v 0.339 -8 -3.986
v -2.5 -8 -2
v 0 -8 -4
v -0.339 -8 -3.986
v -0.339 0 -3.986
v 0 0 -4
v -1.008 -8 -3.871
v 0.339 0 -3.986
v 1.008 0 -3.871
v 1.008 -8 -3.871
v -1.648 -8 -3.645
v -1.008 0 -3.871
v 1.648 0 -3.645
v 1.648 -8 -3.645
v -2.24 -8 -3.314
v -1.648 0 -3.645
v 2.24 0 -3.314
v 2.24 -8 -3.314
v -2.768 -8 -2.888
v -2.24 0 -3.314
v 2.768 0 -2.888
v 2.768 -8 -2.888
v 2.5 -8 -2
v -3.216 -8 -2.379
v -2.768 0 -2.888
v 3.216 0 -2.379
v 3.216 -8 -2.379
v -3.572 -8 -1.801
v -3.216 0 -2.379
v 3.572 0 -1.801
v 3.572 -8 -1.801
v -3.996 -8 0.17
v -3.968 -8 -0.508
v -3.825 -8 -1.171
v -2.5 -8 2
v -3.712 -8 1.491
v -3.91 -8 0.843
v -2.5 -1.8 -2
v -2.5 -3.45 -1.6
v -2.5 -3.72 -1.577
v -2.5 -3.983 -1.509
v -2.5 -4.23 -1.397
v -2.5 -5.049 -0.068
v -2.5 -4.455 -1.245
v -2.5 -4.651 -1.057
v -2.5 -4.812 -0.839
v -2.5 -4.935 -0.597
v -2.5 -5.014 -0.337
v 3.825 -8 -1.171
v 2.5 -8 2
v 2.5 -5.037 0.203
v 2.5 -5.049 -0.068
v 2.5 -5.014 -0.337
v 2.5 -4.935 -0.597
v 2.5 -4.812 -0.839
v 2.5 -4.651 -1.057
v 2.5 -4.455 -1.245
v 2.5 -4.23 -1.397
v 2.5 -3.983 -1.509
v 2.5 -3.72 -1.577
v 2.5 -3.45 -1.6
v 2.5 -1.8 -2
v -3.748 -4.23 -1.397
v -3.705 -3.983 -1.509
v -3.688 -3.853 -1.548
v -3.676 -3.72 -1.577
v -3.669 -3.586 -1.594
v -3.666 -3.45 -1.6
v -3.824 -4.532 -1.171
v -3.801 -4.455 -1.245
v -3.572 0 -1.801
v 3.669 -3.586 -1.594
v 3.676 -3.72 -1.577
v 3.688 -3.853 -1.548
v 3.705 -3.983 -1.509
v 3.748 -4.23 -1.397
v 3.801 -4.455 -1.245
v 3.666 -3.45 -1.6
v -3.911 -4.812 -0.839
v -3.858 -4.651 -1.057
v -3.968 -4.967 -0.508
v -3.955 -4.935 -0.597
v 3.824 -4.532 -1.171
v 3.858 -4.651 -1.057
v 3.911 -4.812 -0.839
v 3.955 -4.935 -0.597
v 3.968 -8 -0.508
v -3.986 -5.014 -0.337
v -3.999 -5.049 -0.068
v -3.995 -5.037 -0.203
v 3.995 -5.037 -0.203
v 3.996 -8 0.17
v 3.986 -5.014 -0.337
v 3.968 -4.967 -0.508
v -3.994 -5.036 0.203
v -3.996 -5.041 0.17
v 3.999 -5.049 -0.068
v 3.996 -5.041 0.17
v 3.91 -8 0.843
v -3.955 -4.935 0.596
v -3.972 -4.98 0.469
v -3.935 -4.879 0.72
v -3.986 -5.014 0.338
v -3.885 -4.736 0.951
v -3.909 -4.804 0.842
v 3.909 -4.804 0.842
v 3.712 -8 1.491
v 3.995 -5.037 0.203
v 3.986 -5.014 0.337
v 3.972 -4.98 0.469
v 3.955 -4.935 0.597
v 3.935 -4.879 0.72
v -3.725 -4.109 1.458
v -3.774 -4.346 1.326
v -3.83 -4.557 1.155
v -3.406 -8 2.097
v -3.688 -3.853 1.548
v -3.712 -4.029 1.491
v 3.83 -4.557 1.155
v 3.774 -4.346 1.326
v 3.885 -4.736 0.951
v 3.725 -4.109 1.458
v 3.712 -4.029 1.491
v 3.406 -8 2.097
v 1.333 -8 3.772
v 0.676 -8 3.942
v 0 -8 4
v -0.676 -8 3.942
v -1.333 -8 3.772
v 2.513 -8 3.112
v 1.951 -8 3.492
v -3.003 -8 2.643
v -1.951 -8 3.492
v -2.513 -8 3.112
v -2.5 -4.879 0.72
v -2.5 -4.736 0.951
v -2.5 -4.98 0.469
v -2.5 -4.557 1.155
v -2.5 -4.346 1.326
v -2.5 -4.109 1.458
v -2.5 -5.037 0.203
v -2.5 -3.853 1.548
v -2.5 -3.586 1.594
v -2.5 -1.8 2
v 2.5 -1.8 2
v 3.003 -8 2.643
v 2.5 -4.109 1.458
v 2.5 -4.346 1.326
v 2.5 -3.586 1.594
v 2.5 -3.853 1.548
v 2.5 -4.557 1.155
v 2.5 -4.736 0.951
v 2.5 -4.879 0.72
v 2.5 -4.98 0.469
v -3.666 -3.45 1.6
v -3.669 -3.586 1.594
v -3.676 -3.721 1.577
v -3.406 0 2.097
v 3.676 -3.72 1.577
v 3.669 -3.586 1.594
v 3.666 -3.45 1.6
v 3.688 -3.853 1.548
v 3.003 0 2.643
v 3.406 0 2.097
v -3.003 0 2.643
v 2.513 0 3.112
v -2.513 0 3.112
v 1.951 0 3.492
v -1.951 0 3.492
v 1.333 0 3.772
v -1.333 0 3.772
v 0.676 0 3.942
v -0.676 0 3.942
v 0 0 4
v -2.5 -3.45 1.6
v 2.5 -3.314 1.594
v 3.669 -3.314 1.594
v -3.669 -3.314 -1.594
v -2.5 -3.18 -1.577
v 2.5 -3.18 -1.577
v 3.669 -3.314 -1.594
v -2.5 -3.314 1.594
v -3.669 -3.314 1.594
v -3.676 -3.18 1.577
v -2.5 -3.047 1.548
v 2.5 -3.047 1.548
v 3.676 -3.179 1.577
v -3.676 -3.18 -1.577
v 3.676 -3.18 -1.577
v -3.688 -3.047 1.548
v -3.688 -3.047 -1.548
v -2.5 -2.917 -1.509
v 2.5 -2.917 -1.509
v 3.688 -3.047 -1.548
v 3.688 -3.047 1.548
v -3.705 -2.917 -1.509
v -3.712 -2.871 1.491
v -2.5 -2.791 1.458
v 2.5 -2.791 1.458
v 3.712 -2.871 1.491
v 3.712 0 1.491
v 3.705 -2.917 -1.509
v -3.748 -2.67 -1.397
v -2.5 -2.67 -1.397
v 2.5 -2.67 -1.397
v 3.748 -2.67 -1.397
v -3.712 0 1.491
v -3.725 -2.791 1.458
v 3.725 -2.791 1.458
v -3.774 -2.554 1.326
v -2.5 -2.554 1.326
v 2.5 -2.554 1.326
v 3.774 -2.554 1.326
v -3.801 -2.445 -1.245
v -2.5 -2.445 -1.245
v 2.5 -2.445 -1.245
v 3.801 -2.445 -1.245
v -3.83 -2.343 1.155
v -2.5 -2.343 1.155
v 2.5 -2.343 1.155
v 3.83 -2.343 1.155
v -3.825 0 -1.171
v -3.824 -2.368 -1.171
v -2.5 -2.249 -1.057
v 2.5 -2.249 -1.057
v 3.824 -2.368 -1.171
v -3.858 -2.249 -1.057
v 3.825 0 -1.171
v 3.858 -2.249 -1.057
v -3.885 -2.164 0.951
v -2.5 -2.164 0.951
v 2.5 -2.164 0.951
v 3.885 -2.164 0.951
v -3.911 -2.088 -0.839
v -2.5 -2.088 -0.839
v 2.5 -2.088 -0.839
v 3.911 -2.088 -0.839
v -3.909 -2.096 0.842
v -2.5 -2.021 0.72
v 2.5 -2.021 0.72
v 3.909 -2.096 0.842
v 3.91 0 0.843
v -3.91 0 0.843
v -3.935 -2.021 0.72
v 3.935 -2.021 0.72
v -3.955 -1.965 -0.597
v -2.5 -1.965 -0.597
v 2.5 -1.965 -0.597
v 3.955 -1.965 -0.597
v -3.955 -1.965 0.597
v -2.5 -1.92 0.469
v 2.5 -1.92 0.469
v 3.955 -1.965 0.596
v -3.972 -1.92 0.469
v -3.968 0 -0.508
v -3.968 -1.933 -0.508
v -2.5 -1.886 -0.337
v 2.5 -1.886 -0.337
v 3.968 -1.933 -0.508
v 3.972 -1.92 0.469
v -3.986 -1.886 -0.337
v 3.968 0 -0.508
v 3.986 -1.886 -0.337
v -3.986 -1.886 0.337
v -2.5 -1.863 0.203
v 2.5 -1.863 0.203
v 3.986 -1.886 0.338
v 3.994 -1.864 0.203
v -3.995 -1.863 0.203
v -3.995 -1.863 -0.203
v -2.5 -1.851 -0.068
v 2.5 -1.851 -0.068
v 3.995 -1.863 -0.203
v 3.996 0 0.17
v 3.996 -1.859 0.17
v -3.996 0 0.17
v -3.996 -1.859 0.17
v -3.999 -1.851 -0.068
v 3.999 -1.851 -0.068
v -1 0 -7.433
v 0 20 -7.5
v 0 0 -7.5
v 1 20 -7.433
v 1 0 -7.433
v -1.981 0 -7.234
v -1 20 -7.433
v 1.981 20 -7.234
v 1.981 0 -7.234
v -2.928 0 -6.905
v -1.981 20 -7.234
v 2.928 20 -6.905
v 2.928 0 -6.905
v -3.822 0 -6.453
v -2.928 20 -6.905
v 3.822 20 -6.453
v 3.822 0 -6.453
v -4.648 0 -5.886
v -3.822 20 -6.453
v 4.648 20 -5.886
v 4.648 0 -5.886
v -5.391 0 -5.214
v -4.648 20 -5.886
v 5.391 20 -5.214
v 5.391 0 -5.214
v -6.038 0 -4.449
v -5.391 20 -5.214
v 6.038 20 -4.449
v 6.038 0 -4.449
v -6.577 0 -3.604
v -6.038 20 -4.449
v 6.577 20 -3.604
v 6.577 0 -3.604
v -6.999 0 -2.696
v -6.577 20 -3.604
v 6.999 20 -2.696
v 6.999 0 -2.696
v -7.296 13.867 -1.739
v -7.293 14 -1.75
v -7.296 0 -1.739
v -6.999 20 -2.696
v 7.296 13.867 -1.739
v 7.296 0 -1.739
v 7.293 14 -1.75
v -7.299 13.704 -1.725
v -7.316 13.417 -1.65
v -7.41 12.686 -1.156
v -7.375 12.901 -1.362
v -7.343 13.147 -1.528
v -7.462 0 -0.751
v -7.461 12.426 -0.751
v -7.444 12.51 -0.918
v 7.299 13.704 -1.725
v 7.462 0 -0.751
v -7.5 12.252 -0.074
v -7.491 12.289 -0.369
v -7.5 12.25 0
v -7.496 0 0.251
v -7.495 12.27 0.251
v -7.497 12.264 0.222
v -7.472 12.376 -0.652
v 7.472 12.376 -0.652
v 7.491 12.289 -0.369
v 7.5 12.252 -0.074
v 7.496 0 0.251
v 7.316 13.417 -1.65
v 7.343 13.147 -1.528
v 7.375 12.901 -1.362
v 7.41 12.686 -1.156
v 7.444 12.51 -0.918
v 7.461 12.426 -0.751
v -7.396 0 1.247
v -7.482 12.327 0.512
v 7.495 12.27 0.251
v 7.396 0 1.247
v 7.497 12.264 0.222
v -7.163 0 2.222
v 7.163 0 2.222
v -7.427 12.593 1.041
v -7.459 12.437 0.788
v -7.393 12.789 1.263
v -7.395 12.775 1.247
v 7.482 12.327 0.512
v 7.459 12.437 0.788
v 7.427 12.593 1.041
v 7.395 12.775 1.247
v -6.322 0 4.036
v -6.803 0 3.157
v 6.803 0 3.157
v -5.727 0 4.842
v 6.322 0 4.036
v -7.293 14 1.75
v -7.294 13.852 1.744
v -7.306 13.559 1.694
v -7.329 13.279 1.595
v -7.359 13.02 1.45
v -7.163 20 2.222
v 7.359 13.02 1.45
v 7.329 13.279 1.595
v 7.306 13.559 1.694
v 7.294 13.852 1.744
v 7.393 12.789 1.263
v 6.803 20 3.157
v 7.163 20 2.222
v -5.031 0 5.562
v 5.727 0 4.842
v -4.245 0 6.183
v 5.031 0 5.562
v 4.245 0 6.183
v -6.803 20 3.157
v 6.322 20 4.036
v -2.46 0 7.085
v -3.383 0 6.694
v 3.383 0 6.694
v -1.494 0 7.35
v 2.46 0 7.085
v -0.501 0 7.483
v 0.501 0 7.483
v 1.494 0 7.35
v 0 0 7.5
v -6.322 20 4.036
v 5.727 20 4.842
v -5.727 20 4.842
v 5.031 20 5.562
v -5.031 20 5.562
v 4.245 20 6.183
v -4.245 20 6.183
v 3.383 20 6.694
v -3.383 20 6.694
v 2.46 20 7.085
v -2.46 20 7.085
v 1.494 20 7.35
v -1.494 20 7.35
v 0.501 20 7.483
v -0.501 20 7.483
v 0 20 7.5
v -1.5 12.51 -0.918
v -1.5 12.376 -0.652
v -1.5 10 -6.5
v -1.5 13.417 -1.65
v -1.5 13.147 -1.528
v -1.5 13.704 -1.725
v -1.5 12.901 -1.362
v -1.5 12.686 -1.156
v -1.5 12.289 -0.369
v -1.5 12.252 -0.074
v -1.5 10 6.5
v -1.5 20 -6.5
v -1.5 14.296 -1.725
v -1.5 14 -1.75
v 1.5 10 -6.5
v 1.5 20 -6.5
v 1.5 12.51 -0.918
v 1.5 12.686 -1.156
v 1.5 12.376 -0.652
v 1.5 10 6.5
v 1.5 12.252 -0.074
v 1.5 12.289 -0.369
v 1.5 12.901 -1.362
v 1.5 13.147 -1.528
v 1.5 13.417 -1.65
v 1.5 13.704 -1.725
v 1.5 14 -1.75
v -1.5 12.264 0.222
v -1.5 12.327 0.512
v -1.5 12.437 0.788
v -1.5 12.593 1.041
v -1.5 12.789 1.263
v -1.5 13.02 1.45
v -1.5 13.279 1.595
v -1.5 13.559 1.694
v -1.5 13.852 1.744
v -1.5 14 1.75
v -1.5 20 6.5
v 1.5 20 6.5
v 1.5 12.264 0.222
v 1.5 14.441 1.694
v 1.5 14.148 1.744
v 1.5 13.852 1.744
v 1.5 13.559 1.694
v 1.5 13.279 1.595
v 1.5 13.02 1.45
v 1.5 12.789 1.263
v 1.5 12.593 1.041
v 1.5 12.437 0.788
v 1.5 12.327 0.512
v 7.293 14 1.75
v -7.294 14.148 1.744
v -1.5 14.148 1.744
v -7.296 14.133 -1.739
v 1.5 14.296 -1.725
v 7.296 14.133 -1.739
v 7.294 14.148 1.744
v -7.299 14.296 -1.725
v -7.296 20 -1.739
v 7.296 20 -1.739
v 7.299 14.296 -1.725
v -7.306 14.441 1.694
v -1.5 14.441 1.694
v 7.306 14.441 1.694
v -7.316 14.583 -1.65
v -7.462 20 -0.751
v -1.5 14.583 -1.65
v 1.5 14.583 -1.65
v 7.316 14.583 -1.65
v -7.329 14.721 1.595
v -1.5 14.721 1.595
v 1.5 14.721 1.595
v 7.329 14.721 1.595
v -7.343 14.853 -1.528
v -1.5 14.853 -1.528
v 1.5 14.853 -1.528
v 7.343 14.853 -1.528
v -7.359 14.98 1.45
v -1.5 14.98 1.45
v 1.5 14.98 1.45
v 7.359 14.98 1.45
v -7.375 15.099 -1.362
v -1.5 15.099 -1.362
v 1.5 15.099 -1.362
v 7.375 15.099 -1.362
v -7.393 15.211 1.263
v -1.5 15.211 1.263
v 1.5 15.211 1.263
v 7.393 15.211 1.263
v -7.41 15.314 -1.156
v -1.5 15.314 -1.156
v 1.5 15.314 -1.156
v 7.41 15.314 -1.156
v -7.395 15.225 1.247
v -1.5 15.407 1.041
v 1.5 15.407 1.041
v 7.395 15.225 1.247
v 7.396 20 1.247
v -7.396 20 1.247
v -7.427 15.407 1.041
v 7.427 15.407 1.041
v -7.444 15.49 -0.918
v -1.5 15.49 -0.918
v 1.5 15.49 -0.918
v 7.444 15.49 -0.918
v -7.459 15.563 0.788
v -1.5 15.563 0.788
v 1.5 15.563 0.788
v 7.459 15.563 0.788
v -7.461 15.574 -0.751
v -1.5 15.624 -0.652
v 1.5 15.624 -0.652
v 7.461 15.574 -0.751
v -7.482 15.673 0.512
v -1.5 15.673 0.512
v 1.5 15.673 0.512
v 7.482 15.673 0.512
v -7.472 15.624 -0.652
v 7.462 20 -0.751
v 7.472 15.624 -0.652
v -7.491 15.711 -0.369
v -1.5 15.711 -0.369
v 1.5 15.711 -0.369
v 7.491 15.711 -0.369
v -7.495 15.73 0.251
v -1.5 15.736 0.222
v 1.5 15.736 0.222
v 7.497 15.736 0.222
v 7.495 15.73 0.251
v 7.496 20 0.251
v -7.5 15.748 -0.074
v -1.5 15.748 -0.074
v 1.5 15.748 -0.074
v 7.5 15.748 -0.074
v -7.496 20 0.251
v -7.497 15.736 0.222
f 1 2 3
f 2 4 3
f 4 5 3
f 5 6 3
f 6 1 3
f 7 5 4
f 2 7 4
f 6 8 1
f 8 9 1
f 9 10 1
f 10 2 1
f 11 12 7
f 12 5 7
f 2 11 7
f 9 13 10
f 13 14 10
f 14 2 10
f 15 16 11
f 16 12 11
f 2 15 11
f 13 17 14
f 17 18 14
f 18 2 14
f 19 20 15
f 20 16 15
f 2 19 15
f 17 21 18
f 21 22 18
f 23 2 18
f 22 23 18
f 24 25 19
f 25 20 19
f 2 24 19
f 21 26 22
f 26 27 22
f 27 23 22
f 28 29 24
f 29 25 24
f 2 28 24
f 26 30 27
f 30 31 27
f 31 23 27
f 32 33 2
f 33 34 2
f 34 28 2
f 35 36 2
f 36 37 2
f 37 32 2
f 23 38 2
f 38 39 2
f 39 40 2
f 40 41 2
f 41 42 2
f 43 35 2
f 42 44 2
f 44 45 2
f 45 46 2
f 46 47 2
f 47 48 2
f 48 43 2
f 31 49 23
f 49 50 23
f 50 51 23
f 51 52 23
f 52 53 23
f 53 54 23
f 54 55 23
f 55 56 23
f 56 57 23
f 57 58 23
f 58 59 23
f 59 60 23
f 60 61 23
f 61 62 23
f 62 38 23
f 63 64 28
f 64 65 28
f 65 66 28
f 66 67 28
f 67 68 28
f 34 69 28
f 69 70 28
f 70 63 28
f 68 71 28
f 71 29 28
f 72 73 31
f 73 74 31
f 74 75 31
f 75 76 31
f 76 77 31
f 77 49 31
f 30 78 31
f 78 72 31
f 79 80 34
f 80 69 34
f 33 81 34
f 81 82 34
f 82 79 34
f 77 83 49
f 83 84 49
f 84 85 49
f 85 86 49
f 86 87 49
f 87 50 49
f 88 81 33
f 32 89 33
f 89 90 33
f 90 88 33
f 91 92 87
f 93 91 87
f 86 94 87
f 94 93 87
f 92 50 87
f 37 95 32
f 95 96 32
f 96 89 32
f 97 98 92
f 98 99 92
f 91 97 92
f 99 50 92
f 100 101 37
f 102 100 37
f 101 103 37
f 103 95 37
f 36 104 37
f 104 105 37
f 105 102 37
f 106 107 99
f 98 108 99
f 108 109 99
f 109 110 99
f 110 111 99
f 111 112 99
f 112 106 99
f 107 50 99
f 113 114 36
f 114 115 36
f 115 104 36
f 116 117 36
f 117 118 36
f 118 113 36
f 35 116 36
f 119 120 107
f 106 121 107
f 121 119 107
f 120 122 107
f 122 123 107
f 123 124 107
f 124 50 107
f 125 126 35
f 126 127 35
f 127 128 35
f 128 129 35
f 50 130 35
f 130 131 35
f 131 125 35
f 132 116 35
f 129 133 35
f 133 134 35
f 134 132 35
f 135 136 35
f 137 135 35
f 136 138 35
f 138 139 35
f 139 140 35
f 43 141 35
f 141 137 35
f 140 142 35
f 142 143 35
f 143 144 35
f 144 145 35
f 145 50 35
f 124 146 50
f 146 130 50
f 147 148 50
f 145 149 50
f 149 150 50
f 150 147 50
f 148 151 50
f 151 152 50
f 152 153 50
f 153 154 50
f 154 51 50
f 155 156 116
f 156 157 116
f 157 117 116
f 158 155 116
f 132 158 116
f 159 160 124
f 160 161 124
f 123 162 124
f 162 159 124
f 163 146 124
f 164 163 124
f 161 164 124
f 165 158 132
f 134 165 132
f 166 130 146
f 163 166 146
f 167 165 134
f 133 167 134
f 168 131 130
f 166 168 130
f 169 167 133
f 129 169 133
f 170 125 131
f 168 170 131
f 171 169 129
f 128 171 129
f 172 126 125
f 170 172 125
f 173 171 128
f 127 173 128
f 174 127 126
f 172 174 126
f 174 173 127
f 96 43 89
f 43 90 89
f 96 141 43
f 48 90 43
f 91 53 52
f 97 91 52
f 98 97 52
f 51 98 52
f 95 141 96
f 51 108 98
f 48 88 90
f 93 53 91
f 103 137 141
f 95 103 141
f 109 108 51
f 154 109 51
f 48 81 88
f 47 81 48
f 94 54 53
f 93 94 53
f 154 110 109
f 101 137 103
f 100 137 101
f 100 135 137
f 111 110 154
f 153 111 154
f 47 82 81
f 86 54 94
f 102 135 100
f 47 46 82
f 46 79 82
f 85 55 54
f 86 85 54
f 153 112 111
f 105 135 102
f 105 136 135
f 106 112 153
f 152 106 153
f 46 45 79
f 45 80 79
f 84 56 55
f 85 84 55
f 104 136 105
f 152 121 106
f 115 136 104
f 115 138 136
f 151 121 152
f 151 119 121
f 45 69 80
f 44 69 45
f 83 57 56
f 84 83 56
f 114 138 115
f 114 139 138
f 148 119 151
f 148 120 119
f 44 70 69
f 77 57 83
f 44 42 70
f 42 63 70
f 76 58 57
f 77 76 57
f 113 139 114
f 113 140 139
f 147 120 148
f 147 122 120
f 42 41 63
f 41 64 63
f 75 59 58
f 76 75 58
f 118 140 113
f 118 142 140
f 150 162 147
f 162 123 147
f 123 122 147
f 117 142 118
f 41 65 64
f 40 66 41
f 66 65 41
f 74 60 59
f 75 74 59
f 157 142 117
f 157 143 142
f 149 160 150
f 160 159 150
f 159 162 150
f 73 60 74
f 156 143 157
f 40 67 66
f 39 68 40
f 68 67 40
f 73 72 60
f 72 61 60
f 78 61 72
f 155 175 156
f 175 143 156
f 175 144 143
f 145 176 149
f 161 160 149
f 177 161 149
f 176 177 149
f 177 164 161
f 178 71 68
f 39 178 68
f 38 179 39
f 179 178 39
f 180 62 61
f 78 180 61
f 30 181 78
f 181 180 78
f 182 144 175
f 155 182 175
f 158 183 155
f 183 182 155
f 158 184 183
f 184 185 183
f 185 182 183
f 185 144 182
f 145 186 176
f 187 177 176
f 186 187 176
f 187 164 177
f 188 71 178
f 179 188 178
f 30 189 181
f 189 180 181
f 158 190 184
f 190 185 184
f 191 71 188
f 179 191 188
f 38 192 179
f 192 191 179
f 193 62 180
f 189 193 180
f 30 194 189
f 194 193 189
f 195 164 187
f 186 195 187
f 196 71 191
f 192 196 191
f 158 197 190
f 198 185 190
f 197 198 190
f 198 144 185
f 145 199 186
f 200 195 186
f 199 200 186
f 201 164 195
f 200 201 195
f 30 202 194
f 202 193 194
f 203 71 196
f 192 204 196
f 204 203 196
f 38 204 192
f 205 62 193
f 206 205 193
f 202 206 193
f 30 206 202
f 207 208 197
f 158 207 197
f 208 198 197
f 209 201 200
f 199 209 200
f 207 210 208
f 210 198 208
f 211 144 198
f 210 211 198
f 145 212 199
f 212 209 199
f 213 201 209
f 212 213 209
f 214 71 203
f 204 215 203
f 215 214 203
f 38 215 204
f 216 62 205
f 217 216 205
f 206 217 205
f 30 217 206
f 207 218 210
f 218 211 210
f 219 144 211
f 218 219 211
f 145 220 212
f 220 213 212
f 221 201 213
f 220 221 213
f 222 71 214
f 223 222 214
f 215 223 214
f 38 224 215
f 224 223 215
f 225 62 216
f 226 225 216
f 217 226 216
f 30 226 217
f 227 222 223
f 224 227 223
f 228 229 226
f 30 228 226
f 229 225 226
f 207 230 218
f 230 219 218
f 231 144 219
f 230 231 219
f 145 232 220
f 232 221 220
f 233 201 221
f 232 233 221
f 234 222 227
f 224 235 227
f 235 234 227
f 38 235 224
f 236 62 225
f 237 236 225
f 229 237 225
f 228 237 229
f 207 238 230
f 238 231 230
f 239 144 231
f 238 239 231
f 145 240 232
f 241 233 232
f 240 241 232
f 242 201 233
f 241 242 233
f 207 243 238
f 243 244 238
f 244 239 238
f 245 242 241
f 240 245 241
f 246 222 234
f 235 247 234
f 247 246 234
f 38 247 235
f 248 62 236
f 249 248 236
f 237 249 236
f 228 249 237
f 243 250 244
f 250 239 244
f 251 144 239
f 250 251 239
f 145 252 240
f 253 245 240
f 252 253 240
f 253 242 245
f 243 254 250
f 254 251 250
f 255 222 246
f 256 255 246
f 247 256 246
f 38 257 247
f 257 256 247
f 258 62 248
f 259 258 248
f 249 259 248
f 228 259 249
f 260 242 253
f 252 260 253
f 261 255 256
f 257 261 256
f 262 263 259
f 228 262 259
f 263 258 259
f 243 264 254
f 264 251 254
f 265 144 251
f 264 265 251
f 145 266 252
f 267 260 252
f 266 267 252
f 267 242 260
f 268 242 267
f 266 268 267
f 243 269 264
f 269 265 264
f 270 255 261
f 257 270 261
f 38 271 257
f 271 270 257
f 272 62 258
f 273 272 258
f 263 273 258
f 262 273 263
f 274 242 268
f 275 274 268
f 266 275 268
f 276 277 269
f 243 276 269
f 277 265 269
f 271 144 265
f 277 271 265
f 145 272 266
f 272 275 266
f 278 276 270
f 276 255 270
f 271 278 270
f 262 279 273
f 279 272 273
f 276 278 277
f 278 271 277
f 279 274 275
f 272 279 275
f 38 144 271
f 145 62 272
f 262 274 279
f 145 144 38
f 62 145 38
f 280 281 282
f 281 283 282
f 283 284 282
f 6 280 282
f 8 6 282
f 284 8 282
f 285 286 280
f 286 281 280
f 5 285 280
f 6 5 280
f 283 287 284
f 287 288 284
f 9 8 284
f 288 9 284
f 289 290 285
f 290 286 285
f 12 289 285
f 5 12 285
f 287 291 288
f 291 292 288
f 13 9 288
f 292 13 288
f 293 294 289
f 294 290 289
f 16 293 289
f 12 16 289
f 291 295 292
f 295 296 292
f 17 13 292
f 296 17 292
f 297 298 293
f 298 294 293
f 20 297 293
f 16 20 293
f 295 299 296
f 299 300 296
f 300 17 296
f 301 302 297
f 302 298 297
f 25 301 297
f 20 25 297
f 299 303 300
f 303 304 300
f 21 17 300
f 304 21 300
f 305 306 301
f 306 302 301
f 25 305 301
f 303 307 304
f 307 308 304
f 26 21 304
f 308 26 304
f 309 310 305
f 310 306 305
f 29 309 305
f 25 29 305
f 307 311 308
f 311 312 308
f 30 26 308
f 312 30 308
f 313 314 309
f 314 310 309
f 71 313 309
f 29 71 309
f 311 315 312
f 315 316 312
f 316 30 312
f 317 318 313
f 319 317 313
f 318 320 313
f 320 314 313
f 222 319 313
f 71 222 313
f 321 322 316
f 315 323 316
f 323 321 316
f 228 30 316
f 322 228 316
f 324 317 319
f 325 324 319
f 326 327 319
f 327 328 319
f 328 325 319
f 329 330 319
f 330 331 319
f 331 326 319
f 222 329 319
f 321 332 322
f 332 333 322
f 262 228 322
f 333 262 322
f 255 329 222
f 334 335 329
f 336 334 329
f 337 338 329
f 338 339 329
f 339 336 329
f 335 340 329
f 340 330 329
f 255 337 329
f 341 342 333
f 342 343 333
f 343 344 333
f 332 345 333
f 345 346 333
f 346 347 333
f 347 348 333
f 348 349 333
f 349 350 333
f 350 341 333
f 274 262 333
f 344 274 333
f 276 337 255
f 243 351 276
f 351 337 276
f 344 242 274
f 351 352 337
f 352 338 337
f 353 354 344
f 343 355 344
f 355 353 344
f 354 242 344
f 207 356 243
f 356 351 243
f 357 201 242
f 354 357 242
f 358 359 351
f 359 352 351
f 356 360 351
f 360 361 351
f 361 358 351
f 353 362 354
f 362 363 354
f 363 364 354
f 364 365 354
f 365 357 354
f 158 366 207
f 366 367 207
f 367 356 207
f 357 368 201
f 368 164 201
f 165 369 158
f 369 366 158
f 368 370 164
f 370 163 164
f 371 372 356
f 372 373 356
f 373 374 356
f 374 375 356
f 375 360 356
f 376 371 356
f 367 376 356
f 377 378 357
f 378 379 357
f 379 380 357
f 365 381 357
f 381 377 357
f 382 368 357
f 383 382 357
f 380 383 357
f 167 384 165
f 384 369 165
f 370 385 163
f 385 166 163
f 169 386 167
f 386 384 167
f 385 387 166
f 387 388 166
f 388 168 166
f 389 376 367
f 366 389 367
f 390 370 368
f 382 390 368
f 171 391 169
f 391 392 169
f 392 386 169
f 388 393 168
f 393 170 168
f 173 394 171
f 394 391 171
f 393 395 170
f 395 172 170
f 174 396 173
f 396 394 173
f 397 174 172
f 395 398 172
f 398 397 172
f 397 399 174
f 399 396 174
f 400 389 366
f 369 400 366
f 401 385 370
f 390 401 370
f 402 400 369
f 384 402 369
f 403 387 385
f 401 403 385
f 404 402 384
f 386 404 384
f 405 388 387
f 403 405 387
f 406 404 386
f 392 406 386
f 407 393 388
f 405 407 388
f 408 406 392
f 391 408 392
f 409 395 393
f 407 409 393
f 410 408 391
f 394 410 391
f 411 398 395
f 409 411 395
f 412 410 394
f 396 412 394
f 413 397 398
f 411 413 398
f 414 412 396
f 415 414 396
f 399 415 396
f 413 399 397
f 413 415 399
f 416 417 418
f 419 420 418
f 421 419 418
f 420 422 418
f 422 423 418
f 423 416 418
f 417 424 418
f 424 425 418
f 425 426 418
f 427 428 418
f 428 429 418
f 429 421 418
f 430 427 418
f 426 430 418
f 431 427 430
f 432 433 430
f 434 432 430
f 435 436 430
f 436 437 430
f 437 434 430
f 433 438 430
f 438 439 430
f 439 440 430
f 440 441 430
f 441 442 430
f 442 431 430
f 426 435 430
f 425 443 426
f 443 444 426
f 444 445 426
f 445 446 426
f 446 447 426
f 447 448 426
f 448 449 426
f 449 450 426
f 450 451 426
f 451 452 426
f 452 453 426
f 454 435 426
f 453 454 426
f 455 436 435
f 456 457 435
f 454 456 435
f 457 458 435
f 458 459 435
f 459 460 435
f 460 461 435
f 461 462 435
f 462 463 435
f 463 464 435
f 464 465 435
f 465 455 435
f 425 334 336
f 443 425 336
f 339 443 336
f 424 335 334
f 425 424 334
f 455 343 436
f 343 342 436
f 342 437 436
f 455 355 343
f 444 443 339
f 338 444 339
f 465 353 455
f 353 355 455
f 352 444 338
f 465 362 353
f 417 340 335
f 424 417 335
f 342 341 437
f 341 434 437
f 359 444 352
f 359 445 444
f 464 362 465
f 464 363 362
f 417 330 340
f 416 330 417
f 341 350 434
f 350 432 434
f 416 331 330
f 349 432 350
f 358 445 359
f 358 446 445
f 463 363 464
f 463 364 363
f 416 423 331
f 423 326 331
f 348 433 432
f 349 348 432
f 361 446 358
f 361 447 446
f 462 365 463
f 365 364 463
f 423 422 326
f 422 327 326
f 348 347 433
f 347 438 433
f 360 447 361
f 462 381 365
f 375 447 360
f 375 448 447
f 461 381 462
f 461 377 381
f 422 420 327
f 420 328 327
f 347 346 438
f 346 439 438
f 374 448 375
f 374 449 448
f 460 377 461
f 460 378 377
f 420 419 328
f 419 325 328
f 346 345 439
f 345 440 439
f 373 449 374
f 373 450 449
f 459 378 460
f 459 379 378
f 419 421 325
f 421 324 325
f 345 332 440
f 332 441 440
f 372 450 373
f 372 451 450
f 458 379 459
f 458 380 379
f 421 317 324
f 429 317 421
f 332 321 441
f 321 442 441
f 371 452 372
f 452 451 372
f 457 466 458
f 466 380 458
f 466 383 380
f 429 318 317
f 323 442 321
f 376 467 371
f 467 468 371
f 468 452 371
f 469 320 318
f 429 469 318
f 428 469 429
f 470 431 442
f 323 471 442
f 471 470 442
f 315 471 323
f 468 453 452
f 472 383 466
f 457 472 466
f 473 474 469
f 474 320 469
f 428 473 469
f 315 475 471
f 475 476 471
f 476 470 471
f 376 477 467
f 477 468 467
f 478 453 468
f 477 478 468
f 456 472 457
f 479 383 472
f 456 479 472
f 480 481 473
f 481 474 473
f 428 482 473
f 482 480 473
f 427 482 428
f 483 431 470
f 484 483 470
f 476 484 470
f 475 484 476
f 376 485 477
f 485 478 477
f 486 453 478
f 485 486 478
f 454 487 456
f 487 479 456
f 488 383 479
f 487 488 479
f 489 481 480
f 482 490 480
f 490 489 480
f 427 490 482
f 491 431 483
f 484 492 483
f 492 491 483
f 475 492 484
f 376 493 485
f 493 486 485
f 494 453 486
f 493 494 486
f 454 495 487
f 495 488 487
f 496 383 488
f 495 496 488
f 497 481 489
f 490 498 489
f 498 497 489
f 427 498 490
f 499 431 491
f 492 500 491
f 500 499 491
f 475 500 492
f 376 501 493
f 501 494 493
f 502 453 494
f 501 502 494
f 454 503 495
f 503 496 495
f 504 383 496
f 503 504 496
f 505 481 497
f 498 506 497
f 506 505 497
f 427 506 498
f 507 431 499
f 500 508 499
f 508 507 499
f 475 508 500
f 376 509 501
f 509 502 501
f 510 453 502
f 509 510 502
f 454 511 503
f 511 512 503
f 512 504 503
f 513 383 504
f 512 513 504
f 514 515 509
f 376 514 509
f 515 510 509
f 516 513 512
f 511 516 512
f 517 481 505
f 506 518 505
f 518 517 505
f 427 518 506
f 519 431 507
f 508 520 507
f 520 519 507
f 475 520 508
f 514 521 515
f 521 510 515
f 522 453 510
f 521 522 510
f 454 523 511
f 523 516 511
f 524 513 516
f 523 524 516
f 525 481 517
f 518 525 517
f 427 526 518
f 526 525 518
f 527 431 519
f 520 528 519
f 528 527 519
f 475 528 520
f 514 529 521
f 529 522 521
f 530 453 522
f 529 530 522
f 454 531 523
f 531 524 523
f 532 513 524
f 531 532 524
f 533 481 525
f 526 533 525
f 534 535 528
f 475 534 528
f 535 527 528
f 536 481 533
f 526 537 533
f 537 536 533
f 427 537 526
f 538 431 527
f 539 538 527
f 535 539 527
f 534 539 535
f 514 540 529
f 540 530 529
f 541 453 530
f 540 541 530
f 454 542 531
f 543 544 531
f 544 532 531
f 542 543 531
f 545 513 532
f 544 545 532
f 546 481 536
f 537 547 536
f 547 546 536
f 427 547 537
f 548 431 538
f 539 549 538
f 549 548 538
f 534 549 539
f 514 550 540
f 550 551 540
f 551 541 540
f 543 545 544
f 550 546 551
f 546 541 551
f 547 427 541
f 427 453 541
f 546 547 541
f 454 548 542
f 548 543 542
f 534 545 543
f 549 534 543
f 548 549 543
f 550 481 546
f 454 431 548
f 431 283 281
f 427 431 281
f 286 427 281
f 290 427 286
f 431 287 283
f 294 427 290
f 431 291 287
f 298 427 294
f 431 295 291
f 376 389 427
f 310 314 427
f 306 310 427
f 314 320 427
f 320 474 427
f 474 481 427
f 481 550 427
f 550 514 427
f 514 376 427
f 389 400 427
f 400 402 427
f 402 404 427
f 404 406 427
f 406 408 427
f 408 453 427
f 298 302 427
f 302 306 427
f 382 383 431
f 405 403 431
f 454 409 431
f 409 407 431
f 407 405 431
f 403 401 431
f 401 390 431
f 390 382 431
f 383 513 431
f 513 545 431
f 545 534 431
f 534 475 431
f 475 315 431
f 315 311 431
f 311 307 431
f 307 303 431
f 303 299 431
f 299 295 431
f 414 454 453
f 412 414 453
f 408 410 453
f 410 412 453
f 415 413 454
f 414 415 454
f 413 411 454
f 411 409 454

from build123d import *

# Parameters (mm, degrees)
SKETCH1_R           = 7.5
BOSS_EXTRUDE1_DEPTH = 20
SKETCH2_W           = 3
SKETCH2_H           = 13
CUT_EXTRUDE1_DEPTH  = 10
SKETCH3_R           = 1.75
CUT_EXTRUDE2_DEPTH  = 27.100766272
SKETCH4_R           = 4
BOSS_EXTRUDE2_DEPTH = 8
SKETCH5_W           = 5
SKETCH5_H           = 4
CUT_EXTRUDE3_DEPTH  = 6.2
SKETCH6_R           = 1.6
CUT_EXTRUDE4_DEPTH  = 27.100766436


with BuildPart() as part:
    # Sketch1 → Boss-Extrude1 (new body)
    with BuildSketch(Plane(origin=(0, 0, 0), x_dir=(1, 0, 0), z_dir=(0, 1, 0))):
        with Locations(Location((0, 0, 0), (0, 0, 270))):
            Circle(SKETCH1_R)
    extrude(amount=BOSS_EXTRUDE1_DEPTH)

    # Sketch2 → Cut-Extrude1 (cut)
    with BuildSketch(Plane(origin=(0, 20, 0), x_dir=(1, 0, 0), z_dir=(0, 1, 0))):
        Rectangle(SKETCH2_W, SKETCH2_H)
    extrude(amount=-CUT_EXTRUDE1_DEPTH, mode=Mode.SUBTRACT)

    # Sketch3 → Cut-Extrude2 (cut, through all)
    with BuildSketch(Plane(origin=(7.5, 0, 0), x_dir=(0, 0, -1), z_dir=(1, 0, 0))):
        with Locations((0, 14)):
            Circle(SKETCH3_R)
    extrude(amount=-CUT_EXTRUDE2_DEPTH, mode=Mode.SUBTRACT)

    # Sketch4 → Boss-Extrude2 (add)
    with BuildSketch(Plane.XZ):
        with Locations(Location((0, 0, 0), (0, 0, 270))):
            Circle(SKETCH4_R)
    extrude(amount=BOSS_EXTRUDE2_DEPTH)

    # Sketch5 → Cut-Extrude3 (cut)
    with BuildSketch(Plane.XZ.offset(8)):
        Rectangle(SKETCH5_W, SKETCH5_H)
    extrude(amount=-CUT_EXTRUDE3_DEPTH, mode=Mode.SUBTRACT)

    # Sketch6 → Cut-Extrude4 (cut, through all)
    with BuildSketch(Plane(origin=(7.5, 0, 0), x_dir=(0, 0, -1), z_dir=(1, 0, 0))):
        with Locations((0, -3.45)):
            Circle(SKETCH6_R)
    extrude(amount=-CUT_EXTRUDE4_DEPTH, mode=Mode.SUBTRACT)


solid = part.part
